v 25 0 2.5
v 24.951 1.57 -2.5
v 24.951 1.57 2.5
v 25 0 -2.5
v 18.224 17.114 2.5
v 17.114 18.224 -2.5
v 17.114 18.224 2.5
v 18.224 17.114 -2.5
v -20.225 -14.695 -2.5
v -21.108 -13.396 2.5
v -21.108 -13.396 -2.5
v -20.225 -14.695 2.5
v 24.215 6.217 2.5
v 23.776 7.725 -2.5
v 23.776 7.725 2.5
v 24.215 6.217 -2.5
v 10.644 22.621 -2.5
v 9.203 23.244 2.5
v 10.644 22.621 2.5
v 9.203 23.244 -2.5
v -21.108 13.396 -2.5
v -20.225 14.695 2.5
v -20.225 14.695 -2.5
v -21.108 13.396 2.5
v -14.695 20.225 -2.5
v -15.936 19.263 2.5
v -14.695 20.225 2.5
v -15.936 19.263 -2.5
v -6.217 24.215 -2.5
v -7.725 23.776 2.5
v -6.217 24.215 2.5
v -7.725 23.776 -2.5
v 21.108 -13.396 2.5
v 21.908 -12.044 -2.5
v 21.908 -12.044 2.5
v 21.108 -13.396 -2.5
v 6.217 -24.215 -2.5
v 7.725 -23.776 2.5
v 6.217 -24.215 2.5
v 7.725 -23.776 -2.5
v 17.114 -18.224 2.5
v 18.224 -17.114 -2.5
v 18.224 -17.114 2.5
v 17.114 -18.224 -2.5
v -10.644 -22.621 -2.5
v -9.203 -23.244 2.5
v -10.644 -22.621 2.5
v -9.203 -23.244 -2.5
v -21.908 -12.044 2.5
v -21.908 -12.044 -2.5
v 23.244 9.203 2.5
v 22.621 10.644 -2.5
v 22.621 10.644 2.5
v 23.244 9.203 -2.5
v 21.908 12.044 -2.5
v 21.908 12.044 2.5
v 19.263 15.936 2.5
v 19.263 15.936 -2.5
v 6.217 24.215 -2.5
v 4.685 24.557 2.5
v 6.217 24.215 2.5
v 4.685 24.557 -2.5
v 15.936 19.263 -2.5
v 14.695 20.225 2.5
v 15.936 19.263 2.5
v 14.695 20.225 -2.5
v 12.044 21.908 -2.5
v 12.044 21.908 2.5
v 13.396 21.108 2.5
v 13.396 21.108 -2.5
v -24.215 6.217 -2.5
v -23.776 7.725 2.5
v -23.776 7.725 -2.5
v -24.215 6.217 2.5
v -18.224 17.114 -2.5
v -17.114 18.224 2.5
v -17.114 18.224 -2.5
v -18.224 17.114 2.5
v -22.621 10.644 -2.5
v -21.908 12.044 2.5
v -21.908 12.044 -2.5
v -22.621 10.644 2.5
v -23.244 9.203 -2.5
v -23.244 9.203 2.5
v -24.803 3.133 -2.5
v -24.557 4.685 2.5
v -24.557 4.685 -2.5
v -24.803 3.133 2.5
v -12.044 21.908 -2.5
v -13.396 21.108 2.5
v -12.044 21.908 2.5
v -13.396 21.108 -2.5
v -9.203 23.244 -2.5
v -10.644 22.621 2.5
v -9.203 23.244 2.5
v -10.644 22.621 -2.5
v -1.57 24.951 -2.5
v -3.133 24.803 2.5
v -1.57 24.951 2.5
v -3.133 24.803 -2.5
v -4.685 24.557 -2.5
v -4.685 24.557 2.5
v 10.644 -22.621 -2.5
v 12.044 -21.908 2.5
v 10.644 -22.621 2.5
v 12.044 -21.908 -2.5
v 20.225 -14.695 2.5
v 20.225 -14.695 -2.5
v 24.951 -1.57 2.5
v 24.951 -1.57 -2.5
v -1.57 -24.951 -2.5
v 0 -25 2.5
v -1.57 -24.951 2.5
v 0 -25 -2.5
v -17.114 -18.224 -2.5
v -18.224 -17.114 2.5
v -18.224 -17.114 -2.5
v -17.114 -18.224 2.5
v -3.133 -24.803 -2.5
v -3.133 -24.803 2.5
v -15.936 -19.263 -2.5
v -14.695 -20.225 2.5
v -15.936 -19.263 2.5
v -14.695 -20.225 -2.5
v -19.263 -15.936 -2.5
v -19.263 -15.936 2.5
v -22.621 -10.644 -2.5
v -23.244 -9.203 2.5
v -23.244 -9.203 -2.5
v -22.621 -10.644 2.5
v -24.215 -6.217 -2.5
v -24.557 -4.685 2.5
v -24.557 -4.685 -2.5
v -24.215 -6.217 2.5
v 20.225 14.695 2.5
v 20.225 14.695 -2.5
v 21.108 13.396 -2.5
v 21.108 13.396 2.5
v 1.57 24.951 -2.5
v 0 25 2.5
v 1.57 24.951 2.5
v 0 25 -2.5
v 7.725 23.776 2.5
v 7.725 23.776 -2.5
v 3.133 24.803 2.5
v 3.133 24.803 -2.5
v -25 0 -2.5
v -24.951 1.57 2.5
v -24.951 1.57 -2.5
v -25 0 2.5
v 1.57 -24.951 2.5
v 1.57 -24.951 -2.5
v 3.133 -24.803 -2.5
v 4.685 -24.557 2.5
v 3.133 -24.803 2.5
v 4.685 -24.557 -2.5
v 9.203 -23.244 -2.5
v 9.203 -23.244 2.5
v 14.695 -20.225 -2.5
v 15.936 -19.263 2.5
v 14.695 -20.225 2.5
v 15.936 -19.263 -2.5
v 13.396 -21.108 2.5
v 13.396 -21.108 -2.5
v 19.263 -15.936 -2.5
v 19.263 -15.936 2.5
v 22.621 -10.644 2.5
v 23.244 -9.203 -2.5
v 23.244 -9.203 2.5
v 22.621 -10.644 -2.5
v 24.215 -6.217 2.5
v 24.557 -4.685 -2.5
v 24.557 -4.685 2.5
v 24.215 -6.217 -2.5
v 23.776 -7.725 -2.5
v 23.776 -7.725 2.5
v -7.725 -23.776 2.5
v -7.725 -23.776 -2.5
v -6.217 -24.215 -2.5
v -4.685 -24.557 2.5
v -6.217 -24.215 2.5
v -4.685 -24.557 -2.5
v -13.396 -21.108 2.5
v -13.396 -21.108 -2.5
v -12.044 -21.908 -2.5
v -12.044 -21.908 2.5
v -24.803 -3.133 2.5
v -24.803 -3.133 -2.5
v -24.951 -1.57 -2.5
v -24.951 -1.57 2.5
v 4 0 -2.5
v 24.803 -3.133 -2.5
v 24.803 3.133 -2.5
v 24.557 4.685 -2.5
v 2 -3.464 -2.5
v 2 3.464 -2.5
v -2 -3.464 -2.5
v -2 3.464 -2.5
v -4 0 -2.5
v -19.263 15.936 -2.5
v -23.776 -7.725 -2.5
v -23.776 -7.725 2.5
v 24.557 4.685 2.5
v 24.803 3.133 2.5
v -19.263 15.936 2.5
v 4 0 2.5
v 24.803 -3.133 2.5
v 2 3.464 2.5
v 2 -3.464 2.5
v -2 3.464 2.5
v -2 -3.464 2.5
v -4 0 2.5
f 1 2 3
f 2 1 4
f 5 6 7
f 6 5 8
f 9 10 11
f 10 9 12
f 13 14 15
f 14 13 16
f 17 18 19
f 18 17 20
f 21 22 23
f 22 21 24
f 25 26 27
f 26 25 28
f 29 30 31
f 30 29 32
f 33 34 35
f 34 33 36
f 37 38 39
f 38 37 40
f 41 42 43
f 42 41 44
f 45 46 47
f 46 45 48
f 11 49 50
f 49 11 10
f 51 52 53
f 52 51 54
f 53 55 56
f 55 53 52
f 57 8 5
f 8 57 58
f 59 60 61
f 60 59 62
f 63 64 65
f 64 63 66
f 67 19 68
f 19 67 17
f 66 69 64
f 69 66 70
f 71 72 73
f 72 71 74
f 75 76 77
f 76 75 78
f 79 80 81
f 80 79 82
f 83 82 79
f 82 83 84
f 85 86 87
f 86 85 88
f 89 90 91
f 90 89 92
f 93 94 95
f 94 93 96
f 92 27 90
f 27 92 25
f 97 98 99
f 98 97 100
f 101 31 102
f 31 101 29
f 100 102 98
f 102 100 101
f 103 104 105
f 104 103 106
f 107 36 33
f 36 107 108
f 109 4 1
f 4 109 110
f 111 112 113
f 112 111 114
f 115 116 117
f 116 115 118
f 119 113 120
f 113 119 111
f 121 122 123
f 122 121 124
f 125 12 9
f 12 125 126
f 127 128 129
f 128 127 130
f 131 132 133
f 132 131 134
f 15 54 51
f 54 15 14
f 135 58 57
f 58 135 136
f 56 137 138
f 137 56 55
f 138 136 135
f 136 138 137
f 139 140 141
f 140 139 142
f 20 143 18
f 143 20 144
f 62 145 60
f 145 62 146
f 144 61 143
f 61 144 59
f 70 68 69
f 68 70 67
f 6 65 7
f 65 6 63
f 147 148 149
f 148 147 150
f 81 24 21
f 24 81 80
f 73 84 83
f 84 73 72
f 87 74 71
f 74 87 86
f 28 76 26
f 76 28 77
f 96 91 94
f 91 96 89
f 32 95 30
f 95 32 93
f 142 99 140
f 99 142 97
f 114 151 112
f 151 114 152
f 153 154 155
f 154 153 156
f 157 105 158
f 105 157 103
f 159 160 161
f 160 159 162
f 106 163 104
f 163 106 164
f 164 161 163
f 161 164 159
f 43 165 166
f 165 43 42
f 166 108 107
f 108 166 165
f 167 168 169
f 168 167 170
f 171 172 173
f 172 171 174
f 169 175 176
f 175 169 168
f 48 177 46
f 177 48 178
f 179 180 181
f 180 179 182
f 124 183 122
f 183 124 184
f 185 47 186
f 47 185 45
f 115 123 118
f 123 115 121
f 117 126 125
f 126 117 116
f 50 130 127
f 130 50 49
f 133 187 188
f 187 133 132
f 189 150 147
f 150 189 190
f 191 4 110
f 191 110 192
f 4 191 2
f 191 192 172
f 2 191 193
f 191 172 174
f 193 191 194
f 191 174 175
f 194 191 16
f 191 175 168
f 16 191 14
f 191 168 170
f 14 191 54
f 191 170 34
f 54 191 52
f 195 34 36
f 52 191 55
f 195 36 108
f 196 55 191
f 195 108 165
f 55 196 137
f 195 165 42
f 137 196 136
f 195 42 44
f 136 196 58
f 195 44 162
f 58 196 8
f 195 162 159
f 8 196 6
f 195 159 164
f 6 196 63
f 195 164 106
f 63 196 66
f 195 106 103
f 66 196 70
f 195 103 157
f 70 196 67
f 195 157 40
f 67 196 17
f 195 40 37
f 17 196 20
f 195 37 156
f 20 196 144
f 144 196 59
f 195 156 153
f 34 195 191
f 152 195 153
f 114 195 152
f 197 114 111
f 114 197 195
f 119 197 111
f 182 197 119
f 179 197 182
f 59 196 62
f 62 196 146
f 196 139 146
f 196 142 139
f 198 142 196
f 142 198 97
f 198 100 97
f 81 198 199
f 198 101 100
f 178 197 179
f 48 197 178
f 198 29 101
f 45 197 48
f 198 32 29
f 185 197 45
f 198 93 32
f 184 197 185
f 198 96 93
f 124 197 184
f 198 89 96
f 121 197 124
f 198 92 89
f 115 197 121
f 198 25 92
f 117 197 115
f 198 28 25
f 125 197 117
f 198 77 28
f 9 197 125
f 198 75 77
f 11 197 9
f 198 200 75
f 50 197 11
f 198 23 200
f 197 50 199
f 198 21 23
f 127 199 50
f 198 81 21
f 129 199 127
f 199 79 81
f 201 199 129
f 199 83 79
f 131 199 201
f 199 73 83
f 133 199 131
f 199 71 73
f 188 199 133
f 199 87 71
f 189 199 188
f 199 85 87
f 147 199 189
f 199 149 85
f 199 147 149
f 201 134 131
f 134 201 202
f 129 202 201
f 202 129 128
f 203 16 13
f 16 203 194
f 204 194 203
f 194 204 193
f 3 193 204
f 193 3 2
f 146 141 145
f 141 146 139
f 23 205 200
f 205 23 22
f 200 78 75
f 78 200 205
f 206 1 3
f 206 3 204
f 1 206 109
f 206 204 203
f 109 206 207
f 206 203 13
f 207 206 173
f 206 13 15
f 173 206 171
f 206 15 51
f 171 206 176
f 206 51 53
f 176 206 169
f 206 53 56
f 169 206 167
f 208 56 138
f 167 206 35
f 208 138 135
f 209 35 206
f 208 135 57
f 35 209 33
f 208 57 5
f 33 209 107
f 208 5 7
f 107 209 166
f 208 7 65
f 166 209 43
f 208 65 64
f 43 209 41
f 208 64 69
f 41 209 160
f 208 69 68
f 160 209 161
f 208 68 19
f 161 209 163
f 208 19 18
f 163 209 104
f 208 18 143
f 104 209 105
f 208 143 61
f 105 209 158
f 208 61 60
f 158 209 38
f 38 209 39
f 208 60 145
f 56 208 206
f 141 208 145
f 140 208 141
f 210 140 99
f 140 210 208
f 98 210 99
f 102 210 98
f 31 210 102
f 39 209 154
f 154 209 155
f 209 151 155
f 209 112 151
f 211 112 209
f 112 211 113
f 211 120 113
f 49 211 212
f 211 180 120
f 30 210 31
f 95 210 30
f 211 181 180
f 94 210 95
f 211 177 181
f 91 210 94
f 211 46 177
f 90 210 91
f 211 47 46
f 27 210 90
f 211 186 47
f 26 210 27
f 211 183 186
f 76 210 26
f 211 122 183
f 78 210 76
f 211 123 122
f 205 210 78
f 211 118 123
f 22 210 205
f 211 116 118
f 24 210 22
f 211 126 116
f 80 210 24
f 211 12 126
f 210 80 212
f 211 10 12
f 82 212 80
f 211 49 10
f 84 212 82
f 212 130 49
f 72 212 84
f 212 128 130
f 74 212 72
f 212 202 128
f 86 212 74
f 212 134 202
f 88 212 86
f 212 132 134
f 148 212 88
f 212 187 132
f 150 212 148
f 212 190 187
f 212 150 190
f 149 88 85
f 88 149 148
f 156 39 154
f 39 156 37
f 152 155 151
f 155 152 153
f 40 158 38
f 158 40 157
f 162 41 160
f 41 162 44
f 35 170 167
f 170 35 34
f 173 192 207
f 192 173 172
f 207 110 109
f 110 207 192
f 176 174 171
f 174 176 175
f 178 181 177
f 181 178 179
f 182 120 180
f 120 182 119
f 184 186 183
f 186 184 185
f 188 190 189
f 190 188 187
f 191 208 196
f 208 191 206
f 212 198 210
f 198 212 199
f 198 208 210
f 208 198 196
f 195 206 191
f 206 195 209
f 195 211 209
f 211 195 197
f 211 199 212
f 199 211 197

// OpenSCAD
// vamos a hacer una rueda con eje hexagonal

diametro=50;
altura=5;
diam_eje=8;

difference()
{
    // rueda
    cylinder(d=diametro,h=altura,center=true,$fn=100);
    // taladro eje
    cylinder(d=diam_eje,h=2*altura,center=true,$fn=6);
}
